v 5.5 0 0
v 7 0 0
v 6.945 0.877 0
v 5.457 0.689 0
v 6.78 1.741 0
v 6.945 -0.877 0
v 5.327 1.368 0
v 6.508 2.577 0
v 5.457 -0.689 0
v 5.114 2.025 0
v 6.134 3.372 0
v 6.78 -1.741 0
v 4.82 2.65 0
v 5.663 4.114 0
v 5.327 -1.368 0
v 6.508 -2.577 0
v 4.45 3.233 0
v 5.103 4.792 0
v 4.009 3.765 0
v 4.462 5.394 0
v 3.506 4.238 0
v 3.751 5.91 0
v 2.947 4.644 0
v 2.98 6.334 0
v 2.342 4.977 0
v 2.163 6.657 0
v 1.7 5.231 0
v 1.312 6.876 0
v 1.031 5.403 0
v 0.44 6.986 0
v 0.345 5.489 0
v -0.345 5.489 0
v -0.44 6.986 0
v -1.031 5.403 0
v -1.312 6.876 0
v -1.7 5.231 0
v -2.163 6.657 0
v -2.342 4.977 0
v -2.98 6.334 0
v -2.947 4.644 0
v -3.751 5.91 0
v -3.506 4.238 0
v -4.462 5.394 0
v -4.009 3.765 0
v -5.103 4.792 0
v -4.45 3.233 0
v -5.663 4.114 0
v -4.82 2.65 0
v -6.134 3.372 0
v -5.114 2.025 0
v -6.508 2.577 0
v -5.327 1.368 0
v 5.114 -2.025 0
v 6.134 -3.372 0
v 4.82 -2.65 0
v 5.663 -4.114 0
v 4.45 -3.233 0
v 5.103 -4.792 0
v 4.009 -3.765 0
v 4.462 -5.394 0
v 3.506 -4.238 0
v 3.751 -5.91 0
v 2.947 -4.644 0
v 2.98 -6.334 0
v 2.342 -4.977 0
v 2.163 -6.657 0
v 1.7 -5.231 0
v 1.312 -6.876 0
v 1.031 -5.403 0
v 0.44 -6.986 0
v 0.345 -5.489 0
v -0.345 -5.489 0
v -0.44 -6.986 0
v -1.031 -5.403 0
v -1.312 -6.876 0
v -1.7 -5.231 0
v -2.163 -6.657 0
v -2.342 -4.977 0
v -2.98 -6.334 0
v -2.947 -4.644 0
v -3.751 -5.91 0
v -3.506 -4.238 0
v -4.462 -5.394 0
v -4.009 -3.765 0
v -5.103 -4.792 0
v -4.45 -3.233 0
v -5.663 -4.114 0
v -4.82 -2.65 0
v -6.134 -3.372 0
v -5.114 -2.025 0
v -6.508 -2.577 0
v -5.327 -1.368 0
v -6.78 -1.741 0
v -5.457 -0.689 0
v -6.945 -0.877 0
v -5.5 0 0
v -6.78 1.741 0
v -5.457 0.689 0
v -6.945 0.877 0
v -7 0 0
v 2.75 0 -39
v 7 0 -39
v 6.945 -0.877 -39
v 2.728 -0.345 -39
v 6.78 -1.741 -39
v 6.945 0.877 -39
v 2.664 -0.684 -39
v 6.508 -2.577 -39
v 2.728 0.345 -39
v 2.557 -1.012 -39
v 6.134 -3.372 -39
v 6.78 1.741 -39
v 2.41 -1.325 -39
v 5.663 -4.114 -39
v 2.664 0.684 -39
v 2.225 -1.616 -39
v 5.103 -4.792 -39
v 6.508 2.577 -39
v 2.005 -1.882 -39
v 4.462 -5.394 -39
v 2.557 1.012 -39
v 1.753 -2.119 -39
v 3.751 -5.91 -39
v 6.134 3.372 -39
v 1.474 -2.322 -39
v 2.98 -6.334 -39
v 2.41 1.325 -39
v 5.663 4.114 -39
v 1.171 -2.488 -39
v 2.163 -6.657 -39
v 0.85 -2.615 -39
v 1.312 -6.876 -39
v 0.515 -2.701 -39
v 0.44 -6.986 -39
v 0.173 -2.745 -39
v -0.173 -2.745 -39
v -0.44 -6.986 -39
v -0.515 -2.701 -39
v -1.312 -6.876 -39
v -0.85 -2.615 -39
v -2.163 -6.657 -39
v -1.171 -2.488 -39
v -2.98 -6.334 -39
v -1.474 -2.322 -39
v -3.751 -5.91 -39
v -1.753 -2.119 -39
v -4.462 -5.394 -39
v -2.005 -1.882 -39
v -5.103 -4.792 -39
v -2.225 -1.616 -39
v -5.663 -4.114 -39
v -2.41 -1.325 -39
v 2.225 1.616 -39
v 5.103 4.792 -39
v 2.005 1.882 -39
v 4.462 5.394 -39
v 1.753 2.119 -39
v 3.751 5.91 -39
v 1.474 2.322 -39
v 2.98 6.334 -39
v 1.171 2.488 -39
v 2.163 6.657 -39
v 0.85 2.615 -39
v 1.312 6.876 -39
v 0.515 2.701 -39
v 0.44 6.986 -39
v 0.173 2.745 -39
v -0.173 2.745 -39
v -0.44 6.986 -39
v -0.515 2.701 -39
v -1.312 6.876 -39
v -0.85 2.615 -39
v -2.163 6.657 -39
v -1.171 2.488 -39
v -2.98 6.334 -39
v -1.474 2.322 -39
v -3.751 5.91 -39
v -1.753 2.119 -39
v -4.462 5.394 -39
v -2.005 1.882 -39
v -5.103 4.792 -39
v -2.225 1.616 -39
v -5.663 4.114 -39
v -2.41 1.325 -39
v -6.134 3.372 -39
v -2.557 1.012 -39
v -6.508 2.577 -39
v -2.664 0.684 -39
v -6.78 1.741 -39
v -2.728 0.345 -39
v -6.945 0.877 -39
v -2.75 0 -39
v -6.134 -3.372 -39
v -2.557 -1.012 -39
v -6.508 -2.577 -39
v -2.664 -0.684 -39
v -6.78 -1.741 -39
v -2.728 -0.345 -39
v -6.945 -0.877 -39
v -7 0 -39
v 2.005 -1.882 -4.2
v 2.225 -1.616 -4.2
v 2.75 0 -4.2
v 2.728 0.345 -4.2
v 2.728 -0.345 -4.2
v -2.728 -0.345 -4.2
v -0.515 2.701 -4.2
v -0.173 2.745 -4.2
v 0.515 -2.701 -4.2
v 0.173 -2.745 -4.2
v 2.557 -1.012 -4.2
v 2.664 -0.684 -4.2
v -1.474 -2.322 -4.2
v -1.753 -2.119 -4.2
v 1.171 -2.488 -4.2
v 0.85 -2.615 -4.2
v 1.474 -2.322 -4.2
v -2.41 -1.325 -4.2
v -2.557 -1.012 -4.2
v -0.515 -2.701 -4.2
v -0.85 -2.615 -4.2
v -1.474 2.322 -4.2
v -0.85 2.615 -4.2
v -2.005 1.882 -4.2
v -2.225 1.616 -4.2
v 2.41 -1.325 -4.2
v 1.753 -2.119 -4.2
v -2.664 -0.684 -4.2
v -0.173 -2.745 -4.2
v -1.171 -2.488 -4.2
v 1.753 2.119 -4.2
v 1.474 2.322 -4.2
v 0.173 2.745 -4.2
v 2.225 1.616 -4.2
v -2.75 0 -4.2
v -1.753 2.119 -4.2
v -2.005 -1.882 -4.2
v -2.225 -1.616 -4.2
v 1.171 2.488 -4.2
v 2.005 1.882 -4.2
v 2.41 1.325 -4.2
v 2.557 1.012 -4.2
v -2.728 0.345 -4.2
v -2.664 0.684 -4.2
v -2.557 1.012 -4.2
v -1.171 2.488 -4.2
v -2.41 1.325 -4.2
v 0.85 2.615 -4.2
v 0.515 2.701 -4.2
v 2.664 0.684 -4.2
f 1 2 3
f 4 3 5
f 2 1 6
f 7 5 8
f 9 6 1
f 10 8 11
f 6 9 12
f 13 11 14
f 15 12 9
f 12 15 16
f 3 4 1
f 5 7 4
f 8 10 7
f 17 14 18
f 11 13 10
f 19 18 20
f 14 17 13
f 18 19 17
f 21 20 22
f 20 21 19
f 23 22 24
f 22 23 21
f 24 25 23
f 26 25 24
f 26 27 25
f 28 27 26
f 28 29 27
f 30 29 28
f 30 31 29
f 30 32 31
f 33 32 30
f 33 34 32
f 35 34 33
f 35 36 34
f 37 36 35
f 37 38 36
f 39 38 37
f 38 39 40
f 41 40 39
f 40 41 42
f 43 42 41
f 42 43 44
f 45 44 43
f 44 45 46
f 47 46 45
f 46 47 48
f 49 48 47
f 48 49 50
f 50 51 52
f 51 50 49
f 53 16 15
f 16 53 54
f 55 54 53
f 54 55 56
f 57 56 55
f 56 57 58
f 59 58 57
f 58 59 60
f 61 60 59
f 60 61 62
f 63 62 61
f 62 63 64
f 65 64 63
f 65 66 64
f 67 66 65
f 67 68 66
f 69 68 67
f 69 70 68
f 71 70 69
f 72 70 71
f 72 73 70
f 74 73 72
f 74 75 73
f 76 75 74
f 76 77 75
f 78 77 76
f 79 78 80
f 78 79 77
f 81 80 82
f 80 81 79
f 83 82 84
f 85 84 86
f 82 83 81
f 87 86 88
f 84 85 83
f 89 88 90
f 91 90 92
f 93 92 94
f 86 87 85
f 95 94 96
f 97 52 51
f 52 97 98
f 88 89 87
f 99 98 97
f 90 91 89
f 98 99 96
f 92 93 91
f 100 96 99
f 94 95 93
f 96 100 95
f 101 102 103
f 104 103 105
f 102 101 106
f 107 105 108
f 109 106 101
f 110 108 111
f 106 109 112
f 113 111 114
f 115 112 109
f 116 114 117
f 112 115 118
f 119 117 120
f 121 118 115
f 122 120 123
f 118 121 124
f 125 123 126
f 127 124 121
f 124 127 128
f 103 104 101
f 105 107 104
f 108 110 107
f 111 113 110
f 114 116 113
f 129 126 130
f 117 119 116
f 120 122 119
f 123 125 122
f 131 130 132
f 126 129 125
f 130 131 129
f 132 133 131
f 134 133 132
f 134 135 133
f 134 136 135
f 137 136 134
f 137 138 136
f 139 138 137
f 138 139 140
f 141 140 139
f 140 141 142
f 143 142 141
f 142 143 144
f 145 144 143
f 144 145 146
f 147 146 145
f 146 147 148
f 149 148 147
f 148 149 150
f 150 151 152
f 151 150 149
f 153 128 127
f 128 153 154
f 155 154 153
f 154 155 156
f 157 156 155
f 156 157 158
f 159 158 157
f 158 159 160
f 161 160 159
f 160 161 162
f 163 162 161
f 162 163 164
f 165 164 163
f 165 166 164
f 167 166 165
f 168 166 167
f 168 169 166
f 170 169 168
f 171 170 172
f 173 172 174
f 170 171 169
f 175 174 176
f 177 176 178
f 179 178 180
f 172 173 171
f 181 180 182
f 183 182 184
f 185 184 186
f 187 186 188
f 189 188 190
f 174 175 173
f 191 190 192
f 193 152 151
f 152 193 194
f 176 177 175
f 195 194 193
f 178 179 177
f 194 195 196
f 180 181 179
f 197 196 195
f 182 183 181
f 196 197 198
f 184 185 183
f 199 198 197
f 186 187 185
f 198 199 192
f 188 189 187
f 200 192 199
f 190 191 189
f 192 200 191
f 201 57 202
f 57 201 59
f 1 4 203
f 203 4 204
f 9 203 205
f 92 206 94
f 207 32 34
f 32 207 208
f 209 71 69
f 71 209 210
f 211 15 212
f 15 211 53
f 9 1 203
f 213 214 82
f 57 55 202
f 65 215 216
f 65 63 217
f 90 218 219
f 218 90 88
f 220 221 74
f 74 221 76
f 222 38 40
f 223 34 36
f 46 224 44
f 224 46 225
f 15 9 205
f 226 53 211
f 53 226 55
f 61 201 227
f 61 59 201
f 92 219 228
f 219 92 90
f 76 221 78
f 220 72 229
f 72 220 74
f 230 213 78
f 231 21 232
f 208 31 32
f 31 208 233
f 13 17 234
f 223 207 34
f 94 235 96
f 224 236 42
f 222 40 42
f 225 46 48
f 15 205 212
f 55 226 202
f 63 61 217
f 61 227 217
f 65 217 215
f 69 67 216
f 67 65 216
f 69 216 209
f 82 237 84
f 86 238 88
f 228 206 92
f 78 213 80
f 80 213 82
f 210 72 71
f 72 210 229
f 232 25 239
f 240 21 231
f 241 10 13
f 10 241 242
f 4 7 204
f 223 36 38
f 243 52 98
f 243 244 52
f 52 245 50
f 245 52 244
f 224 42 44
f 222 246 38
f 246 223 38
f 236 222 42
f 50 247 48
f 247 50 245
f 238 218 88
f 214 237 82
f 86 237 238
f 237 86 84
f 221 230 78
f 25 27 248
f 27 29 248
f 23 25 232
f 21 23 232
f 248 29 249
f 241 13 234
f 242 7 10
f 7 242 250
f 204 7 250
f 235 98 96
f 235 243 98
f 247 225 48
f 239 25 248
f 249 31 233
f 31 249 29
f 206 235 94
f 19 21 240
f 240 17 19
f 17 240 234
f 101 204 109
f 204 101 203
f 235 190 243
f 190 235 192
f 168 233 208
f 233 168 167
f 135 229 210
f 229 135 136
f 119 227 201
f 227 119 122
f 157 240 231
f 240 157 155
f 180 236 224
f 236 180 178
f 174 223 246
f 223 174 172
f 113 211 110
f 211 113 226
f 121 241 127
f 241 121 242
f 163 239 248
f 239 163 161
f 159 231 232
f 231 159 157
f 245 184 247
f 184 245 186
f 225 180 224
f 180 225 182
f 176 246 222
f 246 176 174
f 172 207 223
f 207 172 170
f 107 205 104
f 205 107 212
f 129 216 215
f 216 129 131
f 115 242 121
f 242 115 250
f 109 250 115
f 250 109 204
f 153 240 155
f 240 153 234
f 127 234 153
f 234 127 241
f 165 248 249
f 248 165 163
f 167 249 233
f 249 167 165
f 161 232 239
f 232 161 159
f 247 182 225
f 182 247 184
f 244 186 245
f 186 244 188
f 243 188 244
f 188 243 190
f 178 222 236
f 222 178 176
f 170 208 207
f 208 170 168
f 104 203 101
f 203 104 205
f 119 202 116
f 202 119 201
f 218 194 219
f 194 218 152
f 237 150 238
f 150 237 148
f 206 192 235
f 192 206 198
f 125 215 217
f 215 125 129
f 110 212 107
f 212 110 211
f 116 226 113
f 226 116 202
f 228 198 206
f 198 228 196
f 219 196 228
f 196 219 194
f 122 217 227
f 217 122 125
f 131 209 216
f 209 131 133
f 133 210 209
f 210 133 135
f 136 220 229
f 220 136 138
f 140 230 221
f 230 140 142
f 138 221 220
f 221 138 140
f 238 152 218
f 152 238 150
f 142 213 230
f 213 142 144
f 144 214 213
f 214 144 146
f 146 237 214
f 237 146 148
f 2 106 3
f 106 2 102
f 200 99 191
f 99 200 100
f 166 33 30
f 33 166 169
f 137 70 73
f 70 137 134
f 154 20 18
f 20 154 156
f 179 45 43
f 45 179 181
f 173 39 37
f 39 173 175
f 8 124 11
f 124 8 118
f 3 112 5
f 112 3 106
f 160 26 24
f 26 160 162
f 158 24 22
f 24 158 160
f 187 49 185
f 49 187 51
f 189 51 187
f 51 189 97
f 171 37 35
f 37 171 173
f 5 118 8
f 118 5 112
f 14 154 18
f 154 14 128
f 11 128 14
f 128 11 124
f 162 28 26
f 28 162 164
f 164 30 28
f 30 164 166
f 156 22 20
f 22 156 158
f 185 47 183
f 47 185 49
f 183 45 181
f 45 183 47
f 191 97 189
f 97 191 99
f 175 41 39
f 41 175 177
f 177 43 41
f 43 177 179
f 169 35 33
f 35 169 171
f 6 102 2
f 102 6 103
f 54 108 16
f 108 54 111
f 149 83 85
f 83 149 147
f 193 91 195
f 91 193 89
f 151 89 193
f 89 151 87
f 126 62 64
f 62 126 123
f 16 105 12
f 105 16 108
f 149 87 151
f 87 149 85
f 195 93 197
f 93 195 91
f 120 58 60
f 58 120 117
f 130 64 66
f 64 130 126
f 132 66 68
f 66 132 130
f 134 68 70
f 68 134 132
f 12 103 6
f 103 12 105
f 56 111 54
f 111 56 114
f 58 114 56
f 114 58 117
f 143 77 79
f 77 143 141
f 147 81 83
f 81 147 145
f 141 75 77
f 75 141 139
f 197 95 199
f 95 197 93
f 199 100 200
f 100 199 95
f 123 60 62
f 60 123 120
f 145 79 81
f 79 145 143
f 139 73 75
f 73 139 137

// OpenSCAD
$fn = 50;


difference() {
	union() {
		translate(v = [0, 0, -39.0000000000]) {
			cylinder(h = 39, r = 7.0000000000);
		}
		cylinder(h = 0, r = 10.0000000000);
	}
	union() {
		translate(v = [0, 0, 0]) {
			rotate(a = [0, 0, 0]) {
				difference() {
					union() {
						#translate(v = [0, 0, -39.0000000000]) {
							cylinder(h = 39, r = 2.2500000000);
						}
						#translate(v = [0, 0, -4.2000000000]) {
							cylinder(h = 4.2000000000, r = 7.0000000000, r1 = 2.7500000000, r2 = 5.5000000000);
						}
						#translate(v = [0, 0, -39.0000000000]) {
							cylinder(h = 39, r = 2.7500000000);
						}
						#translate(v = [0, 0, -39.0000000000]) {
							cylinder(h = 39, r = 2.2500000000);
						}
					}
					union();
				}
			}
		}
	}
}
